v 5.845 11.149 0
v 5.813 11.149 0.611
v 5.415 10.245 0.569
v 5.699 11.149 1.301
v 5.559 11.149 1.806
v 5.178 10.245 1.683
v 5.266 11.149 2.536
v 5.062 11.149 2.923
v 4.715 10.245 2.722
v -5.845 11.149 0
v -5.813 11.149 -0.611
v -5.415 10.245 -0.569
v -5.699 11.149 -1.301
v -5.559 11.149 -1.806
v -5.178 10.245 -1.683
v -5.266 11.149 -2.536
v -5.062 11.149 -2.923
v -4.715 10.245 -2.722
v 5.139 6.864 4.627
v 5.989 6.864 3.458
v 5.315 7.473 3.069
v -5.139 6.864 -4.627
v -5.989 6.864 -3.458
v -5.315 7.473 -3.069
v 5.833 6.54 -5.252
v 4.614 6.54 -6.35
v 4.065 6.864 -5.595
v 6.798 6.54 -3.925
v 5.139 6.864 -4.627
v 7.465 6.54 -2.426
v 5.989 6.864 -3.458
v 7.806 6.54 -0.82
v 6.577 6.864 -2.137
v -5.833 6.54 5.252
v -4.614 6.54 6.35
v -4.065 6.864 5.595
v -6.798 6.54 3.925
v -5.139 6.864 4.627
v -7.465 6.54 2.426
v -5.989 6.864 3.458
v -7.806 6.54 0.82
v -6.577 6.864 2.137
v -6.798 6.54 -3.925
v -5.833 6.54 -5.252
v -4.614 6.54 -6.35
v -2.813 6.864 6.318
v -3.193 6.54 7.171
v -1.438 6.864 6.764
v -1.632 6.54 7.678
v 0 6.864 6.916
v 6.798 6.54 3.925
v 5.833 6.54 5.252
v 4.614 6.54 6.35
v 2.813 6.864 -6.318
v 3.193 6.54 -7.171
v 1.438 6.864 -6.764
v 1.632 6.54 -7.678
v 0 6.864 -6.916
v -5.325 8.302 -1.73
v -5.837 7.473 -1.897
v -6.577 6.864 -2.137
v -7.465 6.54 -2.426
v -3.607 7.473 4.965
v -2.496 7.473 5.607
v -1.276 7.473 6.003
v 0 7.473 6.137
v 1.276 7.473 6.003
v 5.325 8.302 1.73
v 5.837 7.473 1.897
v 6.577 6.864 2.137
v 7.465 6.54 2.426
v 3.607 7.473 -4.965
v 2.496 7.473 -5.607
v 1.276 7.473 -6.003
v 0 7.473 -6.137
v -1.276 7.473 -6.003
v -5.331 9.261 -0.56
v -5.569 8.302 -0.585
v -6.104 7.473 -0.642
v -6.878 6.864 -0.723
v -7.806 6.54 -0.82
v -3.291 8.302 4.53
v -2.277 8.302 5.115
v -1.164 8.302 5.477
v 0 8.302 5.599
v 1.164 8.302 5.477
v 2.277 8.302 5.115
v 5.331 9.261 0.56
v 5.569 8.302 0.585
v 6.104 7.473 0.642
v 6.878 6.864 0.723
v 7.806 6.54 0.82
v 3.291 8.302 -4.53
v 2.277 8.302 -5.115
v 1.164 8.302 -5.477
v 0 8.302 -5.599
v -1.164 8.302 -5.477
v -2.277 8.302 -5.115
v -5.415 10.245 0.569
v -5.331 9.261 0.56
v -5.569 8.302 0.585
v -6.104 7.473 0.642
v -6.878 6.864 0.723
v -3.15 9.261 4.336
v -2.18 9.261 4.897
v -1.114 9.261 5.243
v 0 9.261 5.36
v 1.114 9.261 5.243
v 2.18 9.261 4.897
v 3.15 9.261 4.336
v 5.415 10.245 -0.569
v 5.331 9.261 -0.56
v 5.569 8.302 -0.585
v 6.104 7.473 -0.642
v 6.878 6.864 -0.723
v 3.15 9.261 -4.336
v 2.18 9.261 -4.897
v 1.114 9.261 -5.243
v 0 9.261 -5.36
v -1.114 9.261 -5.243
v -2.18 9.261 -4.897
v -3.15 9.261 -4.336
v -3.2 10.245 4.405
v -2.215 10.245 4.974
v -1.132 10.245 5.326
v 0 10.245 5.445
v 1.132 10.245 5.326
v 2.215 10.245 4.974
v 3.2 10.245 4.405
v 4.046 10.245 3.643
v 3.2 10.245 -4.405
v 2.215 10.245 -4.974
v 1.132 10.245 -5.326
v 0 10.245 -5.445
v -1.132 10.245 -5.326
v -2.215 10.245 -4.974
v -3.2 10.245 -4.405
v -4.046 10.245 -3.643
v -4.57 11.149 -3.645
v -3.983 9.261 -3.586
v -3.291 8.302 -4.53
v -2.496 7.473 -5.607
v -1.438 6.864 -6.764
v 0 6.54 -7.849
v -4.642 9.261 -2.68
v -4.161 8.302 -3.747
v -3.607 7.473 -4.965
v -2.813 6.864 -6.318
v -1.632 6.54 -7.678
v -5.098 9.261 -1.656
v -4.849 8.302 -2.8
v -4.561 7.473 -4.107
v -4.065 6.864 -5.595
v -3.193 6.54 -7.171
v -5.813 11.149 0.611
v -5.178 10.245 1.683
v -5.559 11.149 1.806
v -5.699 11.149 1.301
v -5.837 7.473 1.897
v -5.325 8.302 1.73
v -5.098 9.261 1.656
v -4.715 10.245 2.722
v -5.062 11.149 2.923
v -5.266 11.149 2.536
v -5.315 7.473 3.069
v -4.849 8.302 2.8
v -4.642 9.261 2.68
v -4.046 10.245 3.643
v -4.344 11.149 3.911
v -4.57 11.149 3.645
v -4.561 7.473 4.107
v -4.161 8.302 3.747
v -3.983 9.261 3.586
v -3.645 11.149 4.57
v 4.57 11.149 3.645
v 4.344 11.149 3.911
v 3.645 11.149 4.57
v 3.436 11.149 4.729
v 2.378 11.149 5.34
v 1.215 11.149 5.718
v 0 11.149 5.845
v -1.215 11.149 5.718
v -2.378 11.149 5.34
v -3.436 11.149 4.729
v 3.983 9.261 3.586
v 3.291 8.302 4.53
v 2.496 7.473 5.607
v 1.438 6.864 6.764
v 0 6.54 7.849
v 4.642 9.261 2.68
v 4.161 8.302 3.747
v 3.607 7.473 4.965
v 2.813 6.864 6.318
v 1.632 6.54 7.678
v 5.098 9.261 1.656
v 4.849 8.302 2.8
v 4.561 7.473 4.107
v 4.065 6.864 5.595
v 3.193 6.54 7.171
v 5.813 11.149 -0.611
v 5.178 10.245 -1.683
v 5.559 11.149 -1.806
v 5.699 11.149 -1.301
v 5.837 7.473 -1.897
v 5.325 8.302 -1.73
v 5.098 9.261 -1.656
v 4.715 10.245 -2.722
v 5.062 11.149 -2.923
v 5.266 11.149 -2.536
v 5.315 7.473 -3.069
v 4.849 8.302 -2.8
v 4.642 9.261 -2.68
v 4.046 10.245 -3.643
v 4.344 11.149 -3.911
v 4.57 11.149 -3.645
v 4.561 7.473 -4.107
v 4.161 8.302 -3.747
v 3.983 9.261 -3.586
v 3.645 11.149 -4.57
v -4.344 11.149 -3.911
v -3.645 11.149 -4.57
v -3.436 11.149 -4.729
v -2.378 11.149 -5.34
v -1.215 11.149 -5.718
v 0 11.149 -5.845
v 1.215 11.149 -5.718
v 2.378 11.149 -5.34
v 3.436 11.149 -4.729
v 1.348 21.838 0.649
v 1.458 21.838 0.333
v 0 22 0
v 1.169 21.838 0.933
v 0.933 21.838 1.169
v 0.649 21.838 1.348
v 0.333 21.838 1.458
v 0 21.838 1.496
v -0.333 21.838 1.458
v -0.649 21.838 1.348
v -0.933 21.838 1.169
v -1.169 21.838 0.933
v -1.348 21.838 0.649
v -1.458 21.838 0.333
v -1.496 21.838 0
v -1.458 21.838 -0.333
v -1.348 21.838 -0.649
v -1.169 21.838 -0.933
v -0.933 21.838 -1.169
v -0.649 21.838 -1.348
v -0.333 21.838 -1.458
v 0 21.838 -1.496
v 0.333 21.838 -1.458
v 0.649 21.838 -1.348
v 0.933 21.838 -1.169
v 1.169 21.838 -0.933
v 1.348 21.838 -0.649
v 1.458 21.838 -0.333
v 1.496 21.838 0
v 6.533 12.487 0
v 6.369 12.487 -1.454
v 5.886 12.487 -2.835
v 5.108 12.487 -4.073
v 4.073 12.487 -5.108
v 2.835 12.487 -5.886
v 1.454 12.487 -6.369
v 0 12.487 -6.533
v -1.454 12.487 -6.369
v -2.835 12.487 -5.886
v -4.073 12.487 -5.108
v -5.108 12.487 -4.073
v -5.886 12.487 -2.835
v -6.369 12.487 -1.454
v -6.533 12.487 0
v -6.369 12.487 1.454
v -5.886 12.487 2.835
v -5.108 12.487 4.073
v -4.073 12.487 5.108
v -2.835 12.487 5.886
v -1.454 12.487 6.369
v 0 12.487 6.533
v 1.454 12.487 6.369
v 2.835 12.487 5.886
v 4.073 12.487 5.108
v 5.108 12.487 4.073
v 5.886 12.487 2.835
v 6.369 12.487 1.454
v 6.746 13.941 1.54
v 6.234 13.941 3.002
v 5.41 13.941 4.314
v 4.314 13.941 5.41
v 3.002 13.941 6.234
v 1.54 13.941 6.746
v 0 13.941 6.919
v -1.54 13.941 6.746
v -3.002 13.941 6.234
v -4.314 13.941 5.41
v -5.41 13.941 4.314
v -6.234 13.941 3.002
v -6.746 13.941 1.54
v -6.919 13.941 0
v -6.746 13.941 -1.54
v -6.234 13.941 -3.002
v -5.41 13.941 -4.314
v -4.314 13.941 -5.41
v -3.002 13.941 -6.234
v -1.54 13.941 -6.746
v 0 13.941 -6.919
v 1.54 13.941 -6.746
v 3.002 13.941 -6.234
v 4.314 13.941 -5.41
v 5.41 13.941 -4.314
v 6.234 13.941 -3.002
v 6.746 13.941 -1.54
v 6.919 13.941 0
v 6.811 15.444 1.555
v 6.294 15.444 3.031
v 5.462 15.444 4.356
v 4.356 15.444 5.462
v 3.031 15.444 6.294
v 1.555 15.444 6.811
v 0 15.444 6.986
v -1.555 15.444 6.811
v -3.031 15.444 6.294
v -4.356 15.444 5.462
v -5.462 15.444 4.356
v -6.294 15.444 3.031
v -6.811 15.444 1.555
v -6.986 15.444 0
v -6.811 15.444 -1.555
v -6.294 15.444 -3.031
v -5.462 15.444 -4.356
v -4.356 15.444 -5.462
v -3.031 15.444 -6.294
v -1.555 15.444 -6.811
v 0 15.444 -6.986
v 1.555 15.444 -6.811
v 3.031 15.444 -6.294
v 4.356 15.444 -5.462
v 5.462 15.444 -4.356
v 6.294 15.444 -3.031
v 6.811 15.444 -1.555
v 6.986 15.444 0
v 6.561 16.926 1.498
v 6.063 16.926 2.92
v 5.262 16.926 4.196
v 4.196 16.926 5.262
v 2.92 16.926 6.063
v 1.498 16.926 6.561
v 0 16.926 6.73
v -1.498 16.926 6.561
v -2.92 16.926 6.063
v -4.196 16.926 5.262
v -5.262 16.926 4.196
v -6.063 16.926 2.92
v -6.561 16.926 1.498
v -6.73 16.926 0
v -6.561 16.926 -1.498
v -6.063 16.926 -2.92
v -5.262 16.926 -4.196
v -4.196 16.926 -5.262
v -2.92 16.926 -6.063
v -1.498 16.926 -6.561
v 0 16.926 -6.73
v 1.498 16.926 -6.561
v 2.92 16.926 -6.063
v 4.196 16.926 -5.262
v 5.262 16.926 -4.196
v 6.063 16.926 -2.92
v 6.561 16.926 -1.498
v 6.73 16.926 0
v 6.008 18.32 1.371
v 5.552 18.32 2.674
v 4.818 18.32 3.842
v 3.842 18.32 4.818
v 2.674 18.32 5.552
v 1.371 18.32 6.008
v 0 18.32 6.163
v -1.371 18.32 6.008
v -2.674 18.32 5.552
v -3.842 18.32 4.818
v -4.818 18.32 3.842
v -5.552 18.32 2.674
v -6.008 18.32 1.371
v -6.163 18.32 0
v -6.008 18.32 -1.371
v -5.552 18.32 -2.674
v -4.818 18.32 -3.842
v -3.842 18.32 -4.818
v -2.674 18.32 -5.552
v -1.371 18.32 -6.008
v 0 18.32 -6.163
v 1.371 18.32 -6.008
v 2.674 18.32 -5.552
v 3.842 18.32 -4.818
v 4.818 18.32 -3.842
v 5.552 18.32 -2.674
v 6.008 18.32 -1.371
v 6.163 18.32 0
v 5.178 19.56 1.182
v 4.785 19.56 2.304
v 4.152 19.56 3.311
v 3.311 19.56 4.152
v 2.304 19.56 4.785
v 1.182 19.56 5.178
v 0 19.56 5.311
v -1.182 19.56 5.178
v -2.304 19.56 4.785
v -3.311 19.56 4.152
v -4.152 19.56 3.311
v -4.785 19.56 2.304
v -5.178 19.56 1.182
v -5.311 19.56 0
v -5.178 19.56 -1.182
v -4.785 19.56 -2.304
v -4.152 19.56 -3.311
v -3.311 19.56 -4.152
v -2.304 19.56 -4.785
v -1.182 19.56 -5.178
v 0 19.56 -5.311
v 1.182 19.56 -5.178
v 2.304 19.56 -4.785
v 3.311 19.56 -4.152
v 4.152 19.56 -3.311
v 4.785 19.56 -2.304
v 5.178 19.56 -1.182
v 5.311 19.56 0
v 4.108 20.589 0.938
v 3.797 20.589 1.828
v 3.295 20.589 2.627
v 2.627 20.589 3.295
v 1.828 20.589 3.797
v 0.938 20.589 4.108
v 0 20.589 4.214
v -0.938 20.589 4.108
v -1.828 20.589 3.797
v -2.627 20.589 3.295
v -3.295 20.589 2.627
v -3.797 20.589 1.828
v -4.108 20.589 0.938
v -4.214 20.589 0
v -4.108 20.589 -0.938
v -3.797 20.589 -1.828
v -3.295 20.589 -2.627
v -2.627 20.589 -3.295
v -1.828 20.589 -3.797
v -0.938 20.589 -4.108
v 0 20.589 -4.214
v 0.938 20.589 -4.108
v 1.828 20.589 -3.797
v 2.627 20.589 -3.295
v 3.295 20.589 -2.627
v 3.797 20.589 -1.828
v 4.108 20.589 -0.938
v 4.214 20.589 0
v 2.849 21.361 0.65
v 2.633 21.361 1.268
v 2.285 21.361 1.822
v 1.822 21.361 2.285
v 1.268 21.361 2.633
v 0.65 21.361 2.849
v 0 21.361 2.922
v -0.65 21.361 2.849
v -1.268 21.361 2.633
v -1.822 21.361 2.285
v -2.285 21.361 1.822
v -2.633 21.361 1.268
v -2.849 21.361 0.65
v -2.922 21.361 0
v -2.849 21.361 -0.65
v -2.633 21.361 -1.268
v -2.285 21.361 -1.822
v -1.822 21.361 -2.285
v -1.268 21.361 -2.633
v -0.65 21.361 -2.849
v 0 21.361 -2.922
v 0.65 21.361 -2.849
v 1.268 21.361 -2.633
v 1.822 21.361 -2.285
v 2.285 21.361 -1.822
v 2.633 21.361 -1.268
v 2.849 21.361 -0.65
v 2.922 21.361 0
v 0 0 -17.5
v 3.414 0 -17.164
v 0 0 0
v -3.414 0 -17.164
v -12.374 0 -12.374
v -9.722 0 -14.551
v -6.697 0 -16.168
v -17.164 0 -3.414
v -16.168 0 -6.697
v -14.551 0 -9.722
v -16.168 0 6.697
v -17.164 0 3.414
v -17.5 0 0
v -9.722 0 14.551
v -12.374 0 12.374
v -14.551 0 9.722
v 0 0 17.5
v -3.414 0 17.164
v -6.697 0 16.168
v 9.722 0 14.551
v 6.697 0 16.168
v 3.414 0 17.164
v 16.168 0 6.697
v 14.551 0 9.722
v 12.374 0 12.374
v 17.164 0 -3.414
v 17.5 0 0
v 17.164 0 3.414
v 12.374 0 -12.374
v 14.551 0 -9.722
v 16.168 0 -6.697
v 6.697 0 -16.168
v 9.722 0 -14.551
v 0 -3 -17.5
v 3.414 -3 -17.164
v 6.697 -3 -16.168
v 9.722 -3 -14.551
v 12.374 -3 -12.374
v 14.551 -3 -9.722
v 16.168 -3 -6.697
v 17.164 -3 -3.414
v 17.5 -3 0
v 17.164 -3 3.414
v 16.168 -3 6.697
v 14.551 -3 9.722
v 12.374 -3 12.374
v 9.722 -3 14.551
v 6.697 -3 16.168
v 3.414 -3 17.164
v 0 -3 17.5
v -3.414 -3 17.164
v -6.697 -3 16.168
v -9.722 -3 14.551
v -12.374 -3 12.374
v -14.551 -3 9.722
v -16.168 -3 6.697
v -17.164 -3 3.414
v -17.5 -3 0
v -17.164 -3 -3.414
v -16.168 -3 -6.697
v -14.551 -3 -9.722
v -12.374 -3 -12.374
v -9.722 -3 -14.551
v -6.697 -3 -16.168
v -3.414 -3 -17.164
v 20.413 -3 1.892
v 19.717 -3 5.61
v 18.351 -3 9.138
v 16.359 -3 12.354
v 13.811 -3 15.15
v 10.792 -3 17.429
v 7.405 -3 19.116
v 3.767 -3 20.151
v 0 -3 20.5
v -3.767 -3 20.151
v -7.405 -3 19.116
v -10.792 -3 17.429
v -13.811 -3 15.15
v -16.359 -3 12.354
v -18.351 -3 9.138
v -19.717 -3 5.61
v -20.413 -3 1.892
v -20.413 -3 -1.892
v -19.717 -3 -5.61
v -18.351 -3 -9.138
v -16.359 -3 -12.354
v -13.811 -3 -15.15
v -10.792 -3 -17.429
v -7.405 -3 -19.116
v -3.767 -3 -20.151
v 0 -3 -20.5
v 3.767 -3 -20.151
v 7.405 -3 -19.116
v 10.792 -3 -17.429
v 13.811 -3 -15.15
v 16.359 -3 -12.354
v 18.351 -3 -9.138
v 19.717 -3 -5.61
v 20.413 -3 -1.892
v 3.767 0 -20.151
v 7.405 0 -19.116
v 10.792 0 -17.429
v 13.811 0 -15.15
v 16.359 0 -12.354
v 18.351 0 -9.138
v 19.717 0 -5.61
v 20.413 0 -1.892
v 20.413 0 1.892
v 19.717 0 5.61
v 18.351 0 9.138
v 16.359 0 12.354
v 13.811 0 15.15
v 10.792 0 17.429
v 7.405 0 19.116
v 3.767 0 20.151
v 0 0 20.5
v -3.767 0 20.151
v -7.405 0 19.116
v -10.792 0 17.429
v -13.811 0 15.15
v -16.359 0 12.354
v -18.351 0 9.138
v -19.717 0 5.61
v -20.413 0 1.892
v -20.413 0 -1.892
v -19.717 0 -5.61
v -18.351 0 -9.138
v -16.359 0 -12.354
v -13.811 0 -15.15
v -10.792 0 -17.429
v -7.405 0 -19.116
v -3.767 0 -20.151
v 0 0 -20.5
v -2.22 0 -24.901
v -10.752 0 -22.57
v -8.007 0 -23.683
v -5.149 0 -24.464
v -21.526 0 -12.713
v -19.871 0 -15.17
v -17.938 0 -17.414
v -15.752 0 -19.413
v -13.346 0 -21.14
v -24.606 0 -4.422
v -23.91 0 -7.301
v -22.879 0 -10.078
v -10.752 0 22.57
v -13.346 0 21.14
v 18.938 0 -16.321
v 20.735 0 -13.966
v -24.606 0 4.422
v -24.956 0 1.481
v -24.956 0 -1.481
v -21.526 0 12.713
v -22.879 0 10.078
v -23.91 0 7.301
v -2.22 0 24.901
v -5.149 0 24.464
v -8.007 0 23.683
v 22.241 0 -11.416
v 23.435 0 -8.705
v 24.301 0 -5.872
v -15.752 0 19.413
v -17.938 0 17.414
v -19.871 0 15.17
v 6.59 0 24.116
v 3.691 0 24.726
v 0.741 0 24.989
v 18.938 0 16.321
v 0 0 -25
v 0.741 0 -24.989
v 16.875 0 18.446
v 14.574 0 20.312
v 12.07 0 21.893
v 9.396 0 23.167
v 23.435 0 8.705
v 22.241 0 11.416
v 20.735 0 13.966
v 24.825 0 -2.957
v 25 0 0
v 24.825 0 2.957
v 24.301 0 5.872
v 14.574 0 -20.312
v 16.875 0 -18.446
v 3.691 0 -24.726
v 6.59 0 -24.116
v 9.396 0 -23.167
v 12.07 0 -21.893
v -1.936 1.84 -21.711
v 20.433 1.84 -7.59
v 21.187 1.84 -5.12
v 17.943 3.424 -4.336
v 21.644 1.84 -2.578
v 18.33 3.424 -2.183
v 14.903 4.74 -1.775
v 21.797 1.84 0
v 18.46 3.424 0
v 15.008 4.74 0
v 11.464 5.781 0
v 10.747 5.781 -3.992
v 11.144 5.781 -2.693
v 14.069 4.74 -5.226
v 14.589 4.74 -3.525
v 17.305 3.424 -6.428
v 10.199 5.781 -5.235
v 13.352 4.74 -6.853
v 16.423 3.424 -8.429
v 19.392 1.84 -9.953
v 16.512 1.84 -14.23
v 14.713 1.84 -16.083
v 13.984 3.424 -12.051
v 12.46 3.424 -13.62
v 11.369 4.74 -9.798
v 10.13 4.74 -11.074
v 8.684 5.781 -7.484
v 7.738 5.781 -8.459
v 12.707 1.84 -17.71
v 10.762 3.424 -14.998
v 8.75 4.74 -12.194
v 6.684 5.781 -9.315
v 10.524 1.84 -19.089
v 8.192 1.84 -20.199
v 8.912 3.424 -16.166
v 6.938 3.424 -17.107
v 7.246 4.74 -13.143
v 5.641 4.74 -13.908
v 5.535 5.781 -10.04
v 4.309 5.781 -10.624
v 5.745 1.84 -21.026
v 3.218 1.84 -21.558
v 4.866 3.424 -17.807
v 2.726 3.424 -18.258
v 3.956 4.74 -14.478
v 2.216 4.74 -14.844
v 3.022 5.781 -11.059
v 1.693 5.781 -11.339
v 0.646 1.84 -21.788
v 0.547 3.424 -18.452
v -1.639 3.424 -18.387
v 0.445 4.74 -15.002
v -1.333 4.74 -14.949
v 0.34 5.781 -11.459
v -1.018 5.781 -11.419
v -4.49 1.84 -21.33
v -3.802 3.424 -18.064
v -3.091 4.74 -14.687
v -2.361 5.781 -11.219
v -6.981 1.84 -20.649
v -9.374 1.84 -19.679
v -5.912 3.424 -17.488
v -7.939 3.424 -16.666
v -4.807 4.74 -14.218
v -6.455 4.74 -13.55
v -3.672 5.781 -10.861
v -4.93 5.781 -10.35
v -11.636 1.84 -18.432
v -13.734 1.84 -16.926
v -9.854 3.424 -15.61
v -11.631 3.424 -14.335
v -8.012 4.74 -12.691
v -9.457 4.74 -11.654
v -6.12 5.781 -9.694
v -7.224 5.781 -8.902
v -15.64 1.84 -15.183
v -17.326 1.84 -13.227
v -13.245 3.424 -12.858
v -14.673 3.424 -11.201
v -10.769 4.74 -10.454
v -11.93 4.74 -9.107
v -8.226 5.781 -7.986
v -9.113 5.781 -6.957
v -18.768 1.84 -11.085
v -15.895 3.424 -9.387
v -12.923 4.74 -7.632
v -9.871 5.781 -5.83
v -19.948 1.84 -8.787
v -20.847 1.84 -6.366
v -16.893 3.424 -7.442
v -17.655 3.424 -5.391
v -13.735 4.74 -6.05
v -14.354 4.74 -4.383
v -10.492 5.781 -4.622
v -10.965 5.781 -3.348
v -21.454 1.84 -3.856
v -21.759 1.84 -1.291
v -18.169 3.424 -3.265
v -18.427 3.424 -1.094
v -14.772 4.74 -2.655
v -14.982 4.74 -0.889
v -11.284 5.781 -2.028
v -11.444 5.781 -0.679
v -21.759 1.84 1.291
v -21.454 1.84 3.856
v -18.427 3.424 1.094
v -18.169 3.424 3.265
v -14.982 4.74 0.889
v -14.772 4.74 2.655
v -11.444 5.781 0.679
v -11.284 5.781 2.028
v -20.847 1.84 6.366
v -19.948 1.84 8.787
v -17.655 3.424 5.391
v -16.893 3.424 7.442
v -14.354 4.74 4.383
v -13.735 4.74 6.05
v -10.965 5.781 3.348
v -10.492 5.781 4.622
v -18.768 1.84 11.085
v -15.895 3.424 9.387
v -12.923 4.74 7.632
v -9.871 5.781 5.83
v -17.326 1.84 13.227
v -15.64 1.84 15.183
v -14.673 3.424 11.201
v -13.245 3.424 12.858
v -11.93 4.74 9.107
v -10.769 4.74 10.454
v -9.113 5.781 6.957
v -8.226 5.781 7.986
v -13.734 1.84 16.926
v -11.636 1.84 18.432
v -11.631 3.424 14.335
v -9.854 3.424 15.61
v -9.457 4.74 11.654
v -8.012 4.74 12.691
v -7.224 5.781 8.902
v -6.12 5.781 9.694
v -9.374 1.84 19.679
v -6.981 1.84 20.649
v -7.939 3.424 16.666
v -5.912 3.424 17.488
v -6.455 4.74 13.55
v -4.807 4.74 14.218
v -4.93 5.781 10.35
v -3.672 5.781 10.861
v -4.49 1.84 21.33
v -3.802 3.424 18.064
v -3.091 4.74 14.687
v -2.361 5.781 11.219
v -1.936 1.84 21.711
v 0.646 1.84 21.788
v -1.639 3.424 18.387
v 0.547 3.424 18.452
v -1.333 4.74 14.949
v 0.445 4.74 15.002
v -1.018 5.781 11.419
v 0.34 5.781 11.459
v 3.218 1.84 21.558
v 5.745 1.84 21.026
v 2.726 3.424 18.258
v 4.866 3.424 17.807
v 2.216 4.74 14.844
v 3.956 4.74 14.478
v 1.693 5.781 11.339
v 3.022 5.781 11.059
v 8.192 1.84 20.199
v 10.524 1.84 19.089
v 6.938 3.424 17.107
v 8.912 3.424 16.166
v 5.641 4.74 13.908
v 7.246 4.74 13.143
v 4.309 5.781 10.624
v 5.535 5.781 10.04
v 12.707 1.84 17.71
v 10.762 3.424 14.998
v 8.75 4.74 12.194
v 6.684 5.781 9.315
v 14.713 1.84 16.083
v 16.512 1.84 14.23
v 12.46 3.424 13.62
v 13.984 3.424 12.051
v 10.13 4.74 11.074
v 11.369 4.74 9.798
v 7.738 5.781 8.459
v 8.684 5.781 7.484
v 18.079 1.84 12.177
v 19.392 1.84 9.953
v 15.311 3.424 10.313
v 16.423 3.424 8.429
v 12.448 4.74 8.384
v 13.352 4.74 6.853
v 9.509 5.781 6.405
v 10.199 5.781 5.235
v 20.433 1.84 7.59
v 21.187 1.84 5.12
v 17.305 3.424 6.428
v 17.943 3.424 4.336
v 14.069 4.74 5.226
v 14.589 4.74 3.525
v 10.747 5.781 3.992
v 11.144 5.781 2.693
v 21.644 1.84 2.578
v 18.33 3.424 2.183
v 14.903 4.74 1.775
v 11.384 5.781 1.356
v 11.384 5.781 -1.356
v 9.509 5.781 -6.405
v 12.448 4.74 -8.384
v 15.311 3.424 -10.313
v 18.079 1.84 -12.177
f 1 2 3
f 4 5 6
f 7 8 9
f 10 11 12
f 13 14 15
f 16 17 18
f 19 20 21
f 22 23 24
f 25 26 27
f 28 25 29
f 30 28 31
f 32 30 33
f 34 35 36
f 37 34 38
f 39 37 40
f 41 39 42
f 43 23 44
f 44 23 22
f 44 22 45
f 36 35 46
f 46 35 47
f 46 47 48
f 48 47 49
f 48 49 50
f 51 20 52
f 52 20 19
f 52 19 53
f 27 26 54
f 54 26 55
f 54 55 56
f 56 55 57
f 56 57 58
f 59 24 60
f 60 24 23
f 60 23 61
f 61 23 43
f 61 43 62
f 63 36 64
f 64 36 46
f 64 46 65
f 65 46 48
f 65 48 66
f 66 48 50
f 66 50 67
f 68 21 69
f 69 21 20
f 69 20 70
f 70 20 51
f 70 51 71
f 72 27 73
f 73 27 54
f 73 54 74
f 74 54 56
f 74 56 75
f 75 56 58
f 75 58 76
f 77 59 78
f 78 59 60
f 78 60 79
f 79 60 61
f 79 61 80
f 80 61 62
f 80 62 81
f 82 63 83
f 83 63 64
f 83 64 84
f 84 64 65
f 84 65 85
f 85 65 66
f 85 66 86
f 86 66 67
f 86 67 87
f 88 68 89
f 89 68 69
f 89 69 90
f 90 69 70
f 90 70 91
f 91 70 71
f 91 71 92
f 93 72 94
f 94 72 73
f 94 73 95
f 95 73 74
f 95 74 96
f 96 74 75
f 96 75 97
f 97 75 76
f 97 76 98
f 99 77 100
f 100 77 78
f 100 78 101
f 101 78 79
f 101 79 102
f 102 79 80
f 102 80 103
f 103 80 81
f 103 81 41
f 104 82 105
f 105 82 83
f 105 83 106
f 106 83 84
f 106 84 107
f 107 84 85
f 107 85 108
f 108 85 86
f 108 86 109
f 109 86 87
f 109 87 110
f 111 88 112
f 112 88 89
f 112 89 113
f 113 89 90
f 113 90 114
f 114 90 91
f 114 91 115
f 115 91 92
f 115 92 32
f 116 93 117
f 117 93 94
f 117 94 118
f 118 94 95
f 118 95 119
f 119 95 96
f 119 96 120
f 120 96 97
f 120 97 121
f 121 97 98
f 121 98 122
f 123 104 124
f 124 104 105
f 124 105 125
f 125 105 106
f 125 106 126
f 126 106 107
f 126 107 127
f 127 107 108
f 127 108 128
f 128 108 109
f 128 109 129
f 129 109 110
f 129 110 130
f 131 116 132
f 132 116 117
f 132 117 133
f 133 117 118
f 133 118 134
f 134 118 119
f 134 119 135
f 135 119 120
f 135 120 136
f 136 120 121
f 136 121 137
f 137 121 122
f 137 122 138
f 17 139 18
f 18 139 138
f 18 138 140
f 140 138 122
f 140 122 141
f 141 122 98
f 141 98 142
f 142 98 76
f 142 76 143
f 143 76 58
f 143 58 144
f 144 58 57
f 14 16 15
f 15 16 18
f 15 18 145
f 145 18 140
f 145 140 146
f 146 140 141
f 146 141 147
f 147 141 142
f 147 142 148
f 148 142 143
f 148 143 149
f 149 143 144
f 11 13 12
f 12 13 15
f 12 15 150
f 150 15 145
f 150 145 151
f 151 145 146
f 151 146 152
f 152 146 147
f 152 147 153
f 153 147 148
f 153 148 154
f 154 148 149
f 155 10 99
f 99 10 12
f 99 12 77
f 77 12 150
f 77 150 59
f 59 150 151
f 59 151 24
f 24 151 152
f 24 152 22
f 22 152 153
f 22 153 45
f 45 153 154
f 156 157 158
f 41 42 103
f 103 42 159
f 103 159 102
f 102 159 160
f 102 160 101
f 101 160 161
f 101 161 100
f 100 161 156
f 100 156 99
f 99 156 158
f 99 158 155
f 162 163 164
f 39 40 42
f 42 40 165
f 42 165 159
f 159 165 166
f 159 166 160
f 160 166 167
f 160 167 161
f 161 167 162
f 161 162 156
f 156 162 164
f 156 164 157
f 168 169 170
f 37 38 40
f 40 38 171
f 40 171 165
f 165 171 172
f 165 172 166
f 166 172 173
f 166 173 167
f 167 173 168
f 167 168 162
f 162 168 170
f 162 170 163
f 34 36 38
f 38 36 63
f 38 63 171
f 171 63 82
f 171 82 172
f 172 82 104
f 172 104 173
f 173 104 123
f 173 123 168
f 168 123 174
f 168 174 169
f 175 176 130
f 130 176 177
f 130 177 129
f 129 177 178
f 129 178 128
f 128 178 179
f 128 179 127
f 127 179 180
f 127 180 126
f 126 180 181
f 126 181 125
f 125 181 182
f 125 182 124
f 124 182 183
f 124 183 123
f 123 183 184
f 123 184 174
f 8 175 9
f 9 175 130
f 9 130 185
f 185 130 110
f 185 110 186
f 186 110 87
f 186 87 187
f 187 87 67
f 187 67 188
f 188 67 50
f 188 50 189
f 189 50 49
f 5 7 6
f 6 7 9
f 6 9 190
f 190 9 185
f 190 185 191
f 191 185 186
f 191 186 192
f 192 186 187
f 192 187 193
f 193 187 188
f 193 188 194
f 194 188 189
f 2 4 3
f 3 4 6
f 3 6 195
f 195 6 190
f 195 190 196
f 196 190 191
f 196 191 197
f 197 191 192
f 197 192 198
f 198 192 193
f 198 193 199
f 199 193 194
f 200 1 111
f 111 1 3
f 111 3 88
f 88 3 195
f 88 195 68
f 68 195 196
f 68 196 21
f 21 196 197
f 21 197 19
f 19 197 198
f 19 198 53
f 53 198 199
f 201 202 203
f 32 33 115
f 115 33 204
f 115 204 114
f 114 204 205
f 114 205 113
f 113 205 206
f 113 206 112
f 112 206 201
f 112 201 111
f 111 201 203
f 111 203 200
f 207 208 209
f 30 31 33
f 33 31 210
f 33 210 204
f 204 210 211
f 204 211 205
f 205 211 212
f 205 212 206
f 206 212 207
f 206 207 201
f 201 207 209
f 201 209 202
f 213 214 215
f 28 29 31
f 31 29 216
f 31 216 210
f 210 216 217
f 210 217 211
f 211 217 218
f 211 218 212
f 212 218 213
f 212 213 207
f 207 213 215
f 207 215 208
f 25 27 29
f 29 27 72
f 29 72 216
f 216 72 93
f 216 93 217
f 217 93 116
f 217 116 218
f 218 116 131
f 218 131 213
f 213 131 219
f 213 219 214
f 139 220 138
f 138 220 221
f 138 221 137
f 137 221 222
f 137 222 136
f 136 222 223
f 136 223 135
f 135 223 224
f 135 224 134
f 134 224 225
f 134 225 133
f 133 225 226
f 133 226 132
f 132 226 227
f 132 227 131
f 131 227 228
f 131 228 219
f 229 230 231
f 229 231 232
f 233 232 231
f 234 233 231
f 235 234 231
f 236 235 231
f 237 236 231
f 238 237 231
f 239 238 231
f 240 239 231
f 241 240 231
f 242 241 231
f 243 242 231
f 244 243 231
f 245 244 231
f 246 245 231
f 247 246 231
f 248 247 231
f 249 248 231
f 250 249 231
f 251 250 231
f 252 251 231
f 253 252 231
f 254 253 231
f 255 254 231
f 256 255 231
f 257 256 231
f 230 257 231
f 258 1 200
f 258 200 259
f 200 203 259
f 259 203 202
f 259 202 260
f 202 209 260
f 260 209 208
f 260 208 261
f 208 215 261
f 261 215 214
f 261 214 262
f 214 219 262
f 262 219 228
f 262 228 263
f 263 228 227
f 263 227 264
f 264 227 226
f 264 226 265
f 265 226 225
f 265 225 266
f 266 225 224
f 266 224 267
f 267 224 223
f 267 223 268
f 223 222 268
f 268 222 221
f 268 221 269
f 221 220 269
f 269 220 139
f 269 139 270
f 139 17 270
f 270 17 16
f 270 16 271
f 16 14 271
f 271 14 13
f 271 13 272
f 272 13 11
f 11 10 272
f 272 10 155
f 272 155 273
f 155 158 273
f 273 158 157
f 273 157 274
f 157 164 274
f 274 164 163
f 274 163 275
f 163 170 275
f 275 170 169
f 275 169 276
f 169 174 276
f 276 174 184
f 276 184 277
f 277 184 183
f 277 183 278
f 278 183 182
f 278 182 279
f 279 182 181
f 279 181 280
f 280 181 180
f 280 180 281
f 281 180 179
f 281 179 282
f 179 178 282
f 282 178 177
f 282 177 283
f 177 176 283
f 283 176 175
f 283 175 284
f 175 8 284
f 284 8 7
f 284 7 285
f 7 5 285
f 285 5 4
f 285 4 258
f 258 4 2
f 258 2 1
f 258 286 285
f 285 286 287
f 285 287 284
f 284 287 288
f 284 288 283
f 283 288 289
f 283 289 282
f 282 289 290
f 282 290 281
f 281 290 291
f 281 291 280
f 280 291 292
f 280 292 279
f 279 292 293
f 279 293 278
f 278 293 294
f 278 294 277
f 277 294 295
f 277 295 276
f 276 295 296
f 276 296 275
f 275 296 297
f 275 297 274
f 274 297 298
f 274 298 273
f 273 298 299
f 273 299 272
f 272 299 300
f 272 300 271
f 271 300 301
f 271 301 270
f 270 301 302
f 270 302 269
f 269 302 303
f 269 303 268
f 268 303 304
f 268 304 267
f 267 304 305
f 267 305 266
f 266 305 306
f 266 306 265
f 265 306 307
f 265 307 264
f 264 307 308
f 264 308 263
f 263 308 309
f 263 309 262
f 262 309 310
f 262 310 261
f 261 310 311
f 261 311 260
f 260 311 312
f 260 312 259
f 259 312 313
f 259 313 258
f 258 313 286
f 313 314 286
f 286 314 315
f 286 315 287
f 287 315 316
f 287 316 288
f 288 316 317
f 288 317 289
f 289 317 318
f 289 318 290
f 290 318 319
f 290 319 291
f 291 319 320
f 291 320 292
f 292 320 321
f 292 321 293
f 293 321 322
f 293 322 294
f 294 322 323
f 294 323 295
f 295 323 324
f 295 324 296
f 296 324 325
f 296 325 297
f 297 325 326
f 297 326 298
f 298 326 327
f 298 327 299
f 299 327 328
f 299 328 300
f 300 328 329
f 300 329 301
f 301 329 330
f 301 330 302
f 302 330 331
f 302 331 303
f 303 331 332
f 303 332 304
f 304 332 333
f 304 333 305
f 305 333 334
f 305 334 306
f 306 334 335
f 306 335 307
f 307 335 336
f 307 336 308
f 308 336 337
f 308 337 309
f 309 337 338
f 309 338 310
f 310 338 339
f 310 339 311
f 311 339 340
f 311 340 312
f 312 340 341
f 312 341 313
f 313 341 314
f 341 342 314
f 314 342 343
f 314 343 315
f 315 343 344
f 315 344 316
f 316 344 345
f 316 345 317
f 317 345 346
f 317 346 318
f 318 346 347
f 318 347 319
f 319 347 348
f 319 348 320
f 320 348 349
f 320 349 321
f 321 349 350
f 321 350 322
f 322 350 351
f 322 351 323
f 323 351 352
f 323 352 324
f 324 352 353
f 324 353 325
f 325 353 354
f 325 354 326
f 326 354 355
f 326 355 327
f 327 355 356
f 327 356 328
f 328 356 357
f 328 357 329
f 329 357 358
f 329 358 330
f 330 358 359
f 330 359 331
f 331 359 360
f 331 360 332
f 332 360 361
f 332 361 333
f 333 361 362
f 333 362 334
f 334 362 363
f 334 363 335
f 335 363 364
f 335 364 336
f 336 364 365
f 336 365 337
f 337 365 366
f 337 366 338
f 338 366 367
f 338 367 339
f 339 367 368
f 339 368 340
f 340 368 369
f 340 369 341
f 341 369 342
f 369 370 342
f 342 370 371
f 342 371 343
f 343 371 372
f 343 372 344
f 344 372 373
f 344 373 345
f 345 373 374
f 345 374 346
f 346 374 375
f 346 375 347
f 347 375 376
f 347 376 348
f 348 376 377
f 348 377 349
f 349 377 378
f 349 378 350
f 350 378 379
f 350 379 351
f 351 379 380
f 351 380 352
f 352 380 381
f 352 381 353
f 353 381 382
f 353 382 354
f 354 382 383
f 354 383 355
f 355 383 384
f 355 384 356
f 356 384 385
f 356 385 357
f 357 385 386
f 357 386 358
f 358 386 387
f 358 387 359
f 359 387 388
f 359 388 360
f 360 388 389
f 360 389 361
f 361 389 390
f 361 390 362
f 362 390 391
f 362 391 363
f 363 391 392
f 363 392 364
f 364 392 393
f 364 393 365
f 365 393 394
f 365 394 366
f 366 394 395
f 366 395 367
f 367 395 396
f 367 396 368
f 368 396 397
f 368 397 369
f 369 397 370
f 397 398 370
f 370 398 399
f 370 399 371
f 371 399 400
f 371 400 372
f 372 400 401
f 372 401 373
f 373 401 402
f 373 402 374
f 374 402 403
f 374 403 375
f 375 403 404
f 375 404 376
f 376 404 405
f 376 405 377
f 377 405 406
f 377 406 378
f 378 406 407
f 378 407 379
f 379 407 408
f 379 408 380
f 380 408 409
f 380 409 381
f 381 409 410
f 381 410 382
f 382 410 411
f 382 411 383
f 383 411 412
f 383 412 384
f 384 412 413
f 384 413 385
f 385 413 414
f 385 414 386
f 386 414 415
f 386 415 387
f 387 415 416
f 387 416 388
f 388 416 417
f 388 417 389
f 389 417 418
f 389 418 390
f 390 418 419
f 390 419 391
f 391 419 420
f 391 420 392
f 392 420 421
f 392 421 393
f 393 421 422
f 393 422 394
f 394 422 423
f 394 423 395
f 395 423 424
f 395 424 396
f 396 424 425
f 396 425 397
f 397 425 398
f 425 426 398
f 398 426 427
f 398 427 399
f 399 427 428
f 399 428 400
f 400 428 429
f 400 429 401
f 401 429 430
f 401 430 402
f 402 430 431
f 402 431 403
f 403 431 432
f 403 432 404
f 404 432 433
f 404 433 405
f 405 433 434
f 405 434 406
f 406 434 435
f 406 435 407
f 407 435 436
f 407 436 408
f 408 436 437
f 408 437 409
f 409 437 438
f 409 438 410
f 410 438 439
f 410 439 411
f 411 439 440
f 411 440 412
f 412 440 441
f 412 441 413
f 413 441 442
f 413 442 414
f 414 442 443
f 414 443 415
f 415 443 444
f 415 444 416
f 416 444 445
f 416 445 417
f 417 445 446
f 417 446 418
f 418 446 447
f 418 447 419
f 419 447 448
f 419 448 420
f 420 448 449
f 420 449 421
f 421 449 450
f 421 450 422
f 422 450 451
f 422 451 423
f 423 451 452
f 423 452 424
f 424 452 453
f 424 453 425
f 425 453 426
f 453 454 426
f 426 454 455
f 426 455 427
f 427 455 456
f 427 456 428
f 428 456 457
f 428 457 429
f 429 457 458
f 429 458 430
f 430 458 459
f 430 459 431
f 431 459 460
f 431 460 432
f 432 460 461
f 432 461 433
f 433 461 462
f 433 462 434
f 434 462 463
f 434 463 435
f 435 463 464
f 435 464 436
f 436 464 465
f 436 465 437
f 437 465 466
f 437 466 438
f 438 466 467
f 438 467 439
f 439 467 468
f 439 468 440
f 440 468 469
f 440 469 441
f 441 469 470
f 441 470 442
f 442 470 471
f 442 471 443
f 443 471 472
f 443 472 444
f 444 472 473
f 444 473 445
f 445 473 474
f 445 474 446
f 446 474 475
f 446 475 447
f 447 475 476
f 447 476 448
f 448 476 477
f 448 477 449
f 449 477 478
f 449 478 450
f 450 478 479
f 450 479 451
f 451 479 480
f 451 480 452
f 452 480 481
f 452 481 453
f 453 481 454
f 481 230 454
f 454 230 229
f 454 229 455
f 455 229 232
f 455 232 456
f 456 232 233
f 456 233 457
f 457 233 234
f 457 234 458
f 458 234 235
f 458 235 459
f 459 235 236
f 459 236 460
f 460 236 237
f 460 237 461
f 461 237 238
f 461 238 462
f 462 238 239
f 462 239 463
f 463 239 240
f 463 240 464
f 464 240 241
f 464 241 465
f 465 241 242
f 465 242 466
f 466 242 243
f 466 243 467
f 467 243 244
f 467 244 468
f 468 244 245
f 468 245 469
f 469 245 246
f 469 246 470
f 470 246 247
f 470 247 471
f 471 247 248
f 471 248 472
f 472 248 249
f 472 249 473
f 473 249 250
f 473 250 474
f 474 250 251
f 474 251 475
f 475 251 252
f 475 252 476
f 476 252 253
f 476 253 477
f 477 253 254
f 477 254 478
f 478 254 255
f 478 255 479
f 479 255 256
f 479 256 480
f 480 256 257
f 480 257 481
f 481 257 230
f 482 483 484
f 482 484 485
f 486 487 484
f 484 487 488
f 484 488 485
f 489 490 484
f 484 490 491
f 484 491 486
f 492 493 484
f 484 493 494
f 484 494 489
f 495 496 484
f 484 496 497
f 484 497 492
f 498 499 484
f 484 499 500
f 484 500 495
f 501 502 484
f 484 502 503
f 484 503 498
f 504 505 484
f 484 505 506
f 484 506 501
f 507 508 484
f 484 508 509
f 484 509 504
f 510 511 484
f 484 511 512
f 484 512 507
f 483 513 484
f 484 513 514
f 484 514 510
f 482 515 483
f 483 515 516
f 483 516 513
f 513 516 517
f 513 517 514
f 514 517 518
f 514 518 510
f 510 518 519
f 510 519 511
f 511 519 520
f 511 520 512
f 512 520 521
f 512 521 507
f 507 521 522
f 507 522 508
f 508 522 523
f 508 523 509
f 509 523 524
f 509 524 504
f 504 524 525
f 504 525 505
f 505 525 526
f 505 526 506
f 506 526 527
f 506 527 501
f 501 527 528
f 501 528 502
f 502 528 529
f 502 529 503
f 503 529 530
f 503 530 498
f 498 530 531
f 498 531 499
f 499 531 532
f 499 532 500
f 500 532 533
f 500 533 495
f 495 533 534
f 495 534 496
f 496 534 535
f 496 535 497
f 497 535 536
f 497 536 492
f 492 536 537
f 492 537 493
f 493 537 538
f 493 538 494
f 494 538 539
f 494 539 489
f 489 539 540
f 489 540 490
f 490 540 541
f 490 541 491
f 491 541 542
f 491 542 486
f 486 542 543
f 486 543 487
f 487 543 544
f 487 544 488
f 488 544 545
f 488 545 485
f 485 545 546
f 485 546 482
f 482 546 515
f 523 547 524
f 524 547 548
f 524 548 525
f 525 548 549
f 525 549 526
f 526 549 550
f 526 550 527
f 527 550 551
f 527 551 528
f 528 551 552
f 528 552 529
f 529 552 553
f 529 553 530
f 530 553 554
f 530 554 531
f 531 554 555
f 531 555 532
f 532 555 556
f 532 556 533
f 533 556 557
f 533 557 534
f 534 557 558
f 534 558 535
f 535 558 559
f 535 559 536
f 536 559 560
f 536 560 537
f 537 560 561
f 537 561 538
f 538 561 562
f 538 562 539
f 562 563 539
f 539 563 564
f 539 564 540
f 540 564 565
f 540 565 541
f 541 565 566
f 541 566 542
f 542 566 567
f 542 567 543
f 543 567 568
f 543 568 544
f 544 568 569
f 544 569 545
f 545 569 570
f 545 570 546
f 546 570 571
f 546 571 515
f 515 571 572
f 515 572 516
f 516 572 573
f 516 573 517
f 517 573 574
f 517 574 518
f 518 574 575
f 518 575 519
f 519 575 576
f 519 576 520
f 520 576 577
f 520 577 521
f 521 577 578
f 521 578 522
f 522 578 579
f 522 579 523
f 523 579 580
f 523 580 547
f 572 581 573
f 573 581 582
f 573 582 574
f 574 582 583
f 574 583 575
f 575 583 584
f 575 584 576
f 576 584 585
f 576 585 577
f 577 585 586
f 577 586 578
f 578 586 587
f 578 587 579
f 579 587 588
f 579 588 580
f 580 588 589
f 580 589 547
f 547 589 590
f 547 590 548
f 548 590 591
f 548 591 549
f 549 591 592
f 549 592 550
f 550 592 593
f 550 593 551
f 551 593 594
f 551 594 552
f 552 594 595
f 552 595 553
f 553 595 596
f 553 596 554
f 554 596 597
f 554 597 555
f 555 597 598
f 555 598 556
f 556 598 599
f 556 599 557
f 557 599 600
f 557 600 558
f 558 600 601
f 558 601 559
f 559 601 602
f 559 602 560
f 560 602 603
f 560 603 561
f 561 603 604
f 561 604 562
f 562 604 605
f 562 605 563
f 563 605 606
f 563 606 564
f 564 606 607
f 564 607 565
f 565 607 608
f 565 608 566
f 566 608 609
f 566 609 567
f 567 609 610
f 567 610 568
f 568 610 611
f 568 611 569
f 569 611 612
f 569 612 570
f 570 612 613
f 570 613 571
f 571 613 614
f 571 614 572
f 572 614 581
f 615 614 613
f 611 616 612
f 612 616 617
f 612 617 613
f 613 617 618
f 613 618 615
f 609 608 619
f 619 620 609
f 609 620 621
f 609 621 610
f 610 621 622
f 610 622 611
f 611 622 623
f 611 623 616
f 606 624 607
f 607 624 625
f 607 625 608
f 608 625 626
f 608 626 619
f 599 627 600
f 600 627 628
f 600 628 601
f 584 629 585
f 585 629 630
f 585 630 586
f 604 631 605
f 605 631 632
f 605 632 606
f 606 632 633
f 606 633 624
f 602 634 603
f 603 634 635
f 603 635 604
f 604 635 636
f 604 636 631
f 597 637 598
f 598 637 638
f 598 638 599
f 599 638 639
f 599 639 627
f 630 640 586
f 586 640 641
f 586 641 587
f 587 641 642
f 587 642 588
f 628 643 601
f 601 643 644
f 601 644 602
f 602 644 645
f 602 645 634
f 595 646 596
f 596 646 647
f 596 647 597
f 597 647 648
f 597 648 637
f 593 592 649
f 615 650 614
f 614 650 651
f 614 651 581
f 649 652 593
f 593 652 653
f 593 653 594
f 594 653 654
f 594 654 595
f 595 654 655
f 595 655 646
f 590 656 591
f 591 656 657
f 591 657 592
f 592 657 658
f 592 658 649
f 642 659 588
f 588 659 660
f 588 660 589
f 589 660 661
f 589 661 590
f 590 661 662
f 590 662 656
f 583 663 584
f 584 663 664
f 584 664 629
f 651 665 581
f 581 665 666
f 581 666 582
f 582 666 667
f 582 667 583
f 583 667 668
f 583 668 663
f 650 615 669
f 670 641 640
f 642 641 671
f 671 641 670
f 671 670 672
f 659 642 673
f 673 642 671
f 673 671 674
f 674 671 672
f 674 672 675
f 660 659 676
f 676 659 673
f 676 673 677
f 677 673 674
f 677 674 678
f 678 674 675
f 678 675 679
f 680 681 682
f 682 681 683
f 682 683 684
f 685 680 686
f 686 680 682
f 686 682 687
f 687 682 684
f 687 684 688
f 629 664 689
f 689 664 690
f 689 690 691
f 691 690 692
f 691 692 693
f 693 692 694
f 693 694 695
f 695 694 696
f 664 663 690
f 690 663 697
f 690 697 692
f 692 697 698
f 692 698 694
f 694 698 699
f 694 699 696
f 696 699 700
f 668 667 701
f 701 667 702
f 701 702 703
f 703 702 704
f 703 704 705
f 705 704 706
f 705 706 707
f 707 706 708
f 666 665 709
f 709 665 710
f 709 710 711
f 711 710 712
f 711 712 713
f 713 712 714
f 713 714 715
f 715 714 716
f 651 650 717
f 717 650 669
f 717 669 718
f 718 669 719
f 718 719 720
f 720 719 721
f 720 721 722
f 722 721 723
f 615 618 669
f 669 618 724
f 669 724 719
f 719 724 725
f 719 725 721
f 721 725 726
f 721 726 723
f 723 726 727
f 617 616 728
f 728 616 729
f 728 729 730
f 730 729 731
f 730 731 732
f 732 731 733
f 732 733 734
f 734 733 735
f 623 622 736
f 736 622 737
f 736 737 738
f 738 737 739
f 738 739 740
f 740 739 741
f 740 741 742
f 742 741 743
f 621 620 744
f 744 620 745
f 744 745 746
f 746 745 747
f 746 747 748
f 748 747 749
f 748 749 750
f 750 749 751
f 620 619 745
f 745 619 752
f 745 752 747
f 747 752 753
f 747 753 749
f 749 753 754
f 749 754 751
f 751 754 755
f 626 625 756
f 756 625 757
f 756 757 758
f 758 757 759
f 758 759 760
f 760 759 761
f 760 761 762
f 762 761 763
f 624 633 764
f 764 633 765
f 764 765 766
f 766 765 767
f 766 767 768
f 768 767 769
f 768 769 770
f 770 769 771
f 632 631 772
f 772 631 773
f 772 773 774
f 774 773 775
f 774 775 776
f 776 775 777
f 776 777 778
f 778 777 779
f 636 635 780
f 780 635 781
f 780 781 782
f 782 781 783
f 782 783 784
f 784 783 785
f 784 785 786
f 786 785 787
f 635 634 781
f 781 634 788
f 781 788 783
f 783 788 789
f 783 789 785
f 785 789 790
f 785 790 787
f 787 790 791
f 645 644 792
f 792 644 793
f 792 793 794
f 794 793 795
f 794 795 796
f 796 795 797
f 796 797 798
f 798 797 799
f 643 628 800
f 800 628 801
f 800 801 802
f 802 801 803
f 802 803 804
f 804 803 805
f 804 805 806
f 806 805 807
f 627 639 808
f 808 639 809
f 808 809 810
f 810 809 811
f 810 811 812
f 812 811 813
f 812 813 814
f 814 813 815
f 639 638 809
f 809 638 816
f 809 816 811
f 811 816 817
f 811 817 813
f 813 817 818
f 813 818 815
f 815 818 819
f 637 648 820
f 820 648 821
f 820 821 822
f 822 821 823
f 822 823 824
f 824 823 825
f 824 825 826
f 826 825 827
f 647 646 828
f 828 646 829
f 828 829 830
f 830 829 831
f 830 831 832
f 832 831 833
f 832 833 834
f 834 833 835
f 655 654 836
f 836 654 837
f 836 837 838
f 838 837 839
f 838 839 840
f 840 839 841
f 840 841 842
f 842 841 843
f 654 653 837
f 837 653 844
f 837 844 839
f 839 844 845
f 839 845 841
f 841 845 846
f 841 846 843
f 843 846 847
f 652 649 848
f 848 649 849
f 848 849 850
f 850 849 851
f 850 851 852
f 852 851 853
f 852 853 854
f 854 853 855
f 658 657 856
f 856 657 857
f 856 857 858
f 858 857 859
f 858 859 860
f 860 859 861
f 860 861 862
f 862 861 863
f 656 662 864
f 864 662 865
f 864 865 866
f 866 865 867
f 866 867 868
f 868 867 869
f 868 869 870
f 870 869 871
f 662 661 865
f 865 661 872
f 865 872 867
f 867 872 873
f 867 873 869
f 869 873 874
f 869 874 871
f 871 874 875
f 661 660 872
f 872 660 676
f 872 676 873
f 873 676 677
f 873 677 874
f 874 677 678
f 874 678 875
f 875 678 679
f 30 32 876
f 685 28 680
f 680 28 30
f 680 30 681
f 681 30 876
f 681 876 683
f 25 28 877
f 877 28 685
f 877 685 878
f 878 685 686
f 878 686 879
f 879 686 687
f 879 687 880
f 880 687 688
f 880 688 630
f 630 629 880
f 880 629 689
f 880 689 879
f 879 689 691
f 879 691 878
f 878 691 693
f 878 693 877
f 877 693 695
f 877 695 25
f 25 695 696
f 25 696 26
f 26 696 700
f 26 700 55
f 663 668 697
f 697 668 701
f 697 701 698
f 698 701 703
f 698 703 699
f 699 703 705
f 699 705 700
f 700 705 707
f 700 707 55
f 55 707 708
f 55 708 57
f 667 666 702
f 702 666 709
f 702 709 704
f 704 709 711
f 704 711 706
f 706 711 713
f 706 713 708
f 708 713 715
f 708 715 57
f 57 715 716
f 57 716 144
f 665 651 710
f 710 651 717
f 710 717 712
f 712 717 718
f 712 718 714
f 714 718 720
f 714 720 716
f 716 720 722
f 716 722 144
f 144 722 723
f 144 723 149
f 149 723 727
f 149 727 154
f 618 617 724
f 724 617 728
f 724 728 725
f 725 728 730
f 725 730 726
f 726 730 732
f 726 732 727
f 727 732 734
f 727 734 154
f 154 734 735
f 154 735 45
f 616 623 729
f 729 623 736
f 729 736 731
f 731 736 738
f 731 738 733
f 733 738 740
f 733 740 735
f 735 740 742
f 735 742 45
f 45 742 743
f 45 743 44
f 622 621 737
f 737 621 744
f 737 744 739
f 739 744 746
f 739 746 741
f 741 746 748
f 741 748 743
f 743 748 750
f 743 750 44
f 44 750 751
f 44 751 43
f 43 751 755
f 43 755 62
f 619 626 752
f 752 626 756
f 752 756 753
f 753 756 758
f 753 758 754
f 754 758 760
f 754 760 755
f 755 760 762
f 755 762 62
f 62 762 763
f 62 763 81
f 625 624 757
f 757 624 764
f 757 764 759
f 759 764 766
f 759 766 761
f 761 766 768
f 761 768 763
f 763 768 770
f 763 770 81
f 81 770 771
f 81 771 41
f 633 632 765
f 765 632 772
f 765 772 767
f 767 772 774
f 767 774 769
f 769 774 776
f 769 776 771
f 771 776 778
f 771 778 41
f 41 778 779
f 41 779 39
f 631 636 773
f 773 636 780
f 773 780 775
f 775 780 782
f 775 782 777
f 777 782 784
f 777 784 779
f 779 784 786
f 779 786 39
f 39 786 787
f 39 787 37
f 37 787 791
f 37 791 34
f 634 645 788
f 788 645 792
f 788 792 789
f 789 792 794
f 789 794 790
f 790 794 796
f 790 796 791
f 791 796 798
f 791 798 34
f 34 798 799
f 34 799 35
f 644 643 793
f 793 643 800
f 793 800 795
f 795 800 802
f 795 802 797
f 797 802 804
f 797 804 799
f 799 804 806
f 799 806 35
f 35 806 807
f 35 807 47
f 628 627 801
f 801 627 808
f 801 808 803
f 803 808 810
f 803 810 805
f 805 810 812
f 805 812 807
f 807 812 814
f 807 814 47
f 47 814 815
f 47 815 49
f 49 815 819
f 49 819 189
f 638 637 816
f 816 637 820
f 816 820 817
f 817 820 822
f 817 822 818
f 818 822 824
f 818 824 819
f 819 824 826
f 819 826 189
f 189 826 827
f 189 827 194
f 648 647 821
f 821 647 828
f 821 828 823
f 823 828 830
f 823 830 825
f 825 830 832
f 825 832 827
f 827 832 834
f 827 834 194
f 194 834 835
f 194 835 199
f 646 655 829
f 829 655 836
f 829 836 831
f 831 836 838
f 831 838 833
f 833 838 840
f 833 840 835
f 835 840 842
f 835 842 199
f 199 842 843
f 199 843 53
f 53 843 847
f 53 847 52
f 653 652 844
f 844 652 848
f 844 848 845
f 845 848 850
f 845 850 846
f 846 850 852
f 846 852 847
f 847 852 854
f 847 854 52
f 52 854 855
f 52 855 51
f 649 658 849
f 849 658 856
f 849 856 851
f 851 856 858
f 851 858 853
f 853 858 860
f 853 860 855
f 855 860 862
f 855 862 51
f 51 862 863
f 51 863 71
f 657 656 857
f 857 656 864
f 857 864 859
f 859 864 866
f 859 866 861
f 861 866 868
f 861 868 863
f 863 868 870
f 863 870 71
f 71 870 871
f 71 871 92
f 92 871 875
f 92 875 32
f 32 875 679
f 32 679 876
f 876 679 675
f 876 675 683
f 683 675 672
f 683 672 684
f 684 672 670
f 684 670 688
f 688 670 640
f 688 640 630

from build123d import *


with BuildPart() as part:
    # Sketch1 → Revolve1 (revolve)
    with BuildSketch(Plane.XY):
        with BuildLine():
            Line((0, 22), (0, 0))
            Line((0, 0), (17.5, 0))
            Line((17.5, 0), (17.5, -3))
            Line((17.5, -3), (20.5, -3))
            Line((20.5, -3), (20.5, 0))
            Line((20.5, 0), (25, 0))
            ThreePointArc((25, 0), (16.747123528, 4.115577986), (7.849471791, 6.540396696))
            ThreePointArc((7.849471791, 6.540396696), (5.599395212, 8.301845982), (5.845351334, 11.148783597))
            ThreePointArc((5.845351334, 11.148783597), (6.162731327, 18.319750381), (0, 22))
        make_face()
    revolve(axis=Axis((0, 0, 0), (0, 1, 0)))


solid = part.part
